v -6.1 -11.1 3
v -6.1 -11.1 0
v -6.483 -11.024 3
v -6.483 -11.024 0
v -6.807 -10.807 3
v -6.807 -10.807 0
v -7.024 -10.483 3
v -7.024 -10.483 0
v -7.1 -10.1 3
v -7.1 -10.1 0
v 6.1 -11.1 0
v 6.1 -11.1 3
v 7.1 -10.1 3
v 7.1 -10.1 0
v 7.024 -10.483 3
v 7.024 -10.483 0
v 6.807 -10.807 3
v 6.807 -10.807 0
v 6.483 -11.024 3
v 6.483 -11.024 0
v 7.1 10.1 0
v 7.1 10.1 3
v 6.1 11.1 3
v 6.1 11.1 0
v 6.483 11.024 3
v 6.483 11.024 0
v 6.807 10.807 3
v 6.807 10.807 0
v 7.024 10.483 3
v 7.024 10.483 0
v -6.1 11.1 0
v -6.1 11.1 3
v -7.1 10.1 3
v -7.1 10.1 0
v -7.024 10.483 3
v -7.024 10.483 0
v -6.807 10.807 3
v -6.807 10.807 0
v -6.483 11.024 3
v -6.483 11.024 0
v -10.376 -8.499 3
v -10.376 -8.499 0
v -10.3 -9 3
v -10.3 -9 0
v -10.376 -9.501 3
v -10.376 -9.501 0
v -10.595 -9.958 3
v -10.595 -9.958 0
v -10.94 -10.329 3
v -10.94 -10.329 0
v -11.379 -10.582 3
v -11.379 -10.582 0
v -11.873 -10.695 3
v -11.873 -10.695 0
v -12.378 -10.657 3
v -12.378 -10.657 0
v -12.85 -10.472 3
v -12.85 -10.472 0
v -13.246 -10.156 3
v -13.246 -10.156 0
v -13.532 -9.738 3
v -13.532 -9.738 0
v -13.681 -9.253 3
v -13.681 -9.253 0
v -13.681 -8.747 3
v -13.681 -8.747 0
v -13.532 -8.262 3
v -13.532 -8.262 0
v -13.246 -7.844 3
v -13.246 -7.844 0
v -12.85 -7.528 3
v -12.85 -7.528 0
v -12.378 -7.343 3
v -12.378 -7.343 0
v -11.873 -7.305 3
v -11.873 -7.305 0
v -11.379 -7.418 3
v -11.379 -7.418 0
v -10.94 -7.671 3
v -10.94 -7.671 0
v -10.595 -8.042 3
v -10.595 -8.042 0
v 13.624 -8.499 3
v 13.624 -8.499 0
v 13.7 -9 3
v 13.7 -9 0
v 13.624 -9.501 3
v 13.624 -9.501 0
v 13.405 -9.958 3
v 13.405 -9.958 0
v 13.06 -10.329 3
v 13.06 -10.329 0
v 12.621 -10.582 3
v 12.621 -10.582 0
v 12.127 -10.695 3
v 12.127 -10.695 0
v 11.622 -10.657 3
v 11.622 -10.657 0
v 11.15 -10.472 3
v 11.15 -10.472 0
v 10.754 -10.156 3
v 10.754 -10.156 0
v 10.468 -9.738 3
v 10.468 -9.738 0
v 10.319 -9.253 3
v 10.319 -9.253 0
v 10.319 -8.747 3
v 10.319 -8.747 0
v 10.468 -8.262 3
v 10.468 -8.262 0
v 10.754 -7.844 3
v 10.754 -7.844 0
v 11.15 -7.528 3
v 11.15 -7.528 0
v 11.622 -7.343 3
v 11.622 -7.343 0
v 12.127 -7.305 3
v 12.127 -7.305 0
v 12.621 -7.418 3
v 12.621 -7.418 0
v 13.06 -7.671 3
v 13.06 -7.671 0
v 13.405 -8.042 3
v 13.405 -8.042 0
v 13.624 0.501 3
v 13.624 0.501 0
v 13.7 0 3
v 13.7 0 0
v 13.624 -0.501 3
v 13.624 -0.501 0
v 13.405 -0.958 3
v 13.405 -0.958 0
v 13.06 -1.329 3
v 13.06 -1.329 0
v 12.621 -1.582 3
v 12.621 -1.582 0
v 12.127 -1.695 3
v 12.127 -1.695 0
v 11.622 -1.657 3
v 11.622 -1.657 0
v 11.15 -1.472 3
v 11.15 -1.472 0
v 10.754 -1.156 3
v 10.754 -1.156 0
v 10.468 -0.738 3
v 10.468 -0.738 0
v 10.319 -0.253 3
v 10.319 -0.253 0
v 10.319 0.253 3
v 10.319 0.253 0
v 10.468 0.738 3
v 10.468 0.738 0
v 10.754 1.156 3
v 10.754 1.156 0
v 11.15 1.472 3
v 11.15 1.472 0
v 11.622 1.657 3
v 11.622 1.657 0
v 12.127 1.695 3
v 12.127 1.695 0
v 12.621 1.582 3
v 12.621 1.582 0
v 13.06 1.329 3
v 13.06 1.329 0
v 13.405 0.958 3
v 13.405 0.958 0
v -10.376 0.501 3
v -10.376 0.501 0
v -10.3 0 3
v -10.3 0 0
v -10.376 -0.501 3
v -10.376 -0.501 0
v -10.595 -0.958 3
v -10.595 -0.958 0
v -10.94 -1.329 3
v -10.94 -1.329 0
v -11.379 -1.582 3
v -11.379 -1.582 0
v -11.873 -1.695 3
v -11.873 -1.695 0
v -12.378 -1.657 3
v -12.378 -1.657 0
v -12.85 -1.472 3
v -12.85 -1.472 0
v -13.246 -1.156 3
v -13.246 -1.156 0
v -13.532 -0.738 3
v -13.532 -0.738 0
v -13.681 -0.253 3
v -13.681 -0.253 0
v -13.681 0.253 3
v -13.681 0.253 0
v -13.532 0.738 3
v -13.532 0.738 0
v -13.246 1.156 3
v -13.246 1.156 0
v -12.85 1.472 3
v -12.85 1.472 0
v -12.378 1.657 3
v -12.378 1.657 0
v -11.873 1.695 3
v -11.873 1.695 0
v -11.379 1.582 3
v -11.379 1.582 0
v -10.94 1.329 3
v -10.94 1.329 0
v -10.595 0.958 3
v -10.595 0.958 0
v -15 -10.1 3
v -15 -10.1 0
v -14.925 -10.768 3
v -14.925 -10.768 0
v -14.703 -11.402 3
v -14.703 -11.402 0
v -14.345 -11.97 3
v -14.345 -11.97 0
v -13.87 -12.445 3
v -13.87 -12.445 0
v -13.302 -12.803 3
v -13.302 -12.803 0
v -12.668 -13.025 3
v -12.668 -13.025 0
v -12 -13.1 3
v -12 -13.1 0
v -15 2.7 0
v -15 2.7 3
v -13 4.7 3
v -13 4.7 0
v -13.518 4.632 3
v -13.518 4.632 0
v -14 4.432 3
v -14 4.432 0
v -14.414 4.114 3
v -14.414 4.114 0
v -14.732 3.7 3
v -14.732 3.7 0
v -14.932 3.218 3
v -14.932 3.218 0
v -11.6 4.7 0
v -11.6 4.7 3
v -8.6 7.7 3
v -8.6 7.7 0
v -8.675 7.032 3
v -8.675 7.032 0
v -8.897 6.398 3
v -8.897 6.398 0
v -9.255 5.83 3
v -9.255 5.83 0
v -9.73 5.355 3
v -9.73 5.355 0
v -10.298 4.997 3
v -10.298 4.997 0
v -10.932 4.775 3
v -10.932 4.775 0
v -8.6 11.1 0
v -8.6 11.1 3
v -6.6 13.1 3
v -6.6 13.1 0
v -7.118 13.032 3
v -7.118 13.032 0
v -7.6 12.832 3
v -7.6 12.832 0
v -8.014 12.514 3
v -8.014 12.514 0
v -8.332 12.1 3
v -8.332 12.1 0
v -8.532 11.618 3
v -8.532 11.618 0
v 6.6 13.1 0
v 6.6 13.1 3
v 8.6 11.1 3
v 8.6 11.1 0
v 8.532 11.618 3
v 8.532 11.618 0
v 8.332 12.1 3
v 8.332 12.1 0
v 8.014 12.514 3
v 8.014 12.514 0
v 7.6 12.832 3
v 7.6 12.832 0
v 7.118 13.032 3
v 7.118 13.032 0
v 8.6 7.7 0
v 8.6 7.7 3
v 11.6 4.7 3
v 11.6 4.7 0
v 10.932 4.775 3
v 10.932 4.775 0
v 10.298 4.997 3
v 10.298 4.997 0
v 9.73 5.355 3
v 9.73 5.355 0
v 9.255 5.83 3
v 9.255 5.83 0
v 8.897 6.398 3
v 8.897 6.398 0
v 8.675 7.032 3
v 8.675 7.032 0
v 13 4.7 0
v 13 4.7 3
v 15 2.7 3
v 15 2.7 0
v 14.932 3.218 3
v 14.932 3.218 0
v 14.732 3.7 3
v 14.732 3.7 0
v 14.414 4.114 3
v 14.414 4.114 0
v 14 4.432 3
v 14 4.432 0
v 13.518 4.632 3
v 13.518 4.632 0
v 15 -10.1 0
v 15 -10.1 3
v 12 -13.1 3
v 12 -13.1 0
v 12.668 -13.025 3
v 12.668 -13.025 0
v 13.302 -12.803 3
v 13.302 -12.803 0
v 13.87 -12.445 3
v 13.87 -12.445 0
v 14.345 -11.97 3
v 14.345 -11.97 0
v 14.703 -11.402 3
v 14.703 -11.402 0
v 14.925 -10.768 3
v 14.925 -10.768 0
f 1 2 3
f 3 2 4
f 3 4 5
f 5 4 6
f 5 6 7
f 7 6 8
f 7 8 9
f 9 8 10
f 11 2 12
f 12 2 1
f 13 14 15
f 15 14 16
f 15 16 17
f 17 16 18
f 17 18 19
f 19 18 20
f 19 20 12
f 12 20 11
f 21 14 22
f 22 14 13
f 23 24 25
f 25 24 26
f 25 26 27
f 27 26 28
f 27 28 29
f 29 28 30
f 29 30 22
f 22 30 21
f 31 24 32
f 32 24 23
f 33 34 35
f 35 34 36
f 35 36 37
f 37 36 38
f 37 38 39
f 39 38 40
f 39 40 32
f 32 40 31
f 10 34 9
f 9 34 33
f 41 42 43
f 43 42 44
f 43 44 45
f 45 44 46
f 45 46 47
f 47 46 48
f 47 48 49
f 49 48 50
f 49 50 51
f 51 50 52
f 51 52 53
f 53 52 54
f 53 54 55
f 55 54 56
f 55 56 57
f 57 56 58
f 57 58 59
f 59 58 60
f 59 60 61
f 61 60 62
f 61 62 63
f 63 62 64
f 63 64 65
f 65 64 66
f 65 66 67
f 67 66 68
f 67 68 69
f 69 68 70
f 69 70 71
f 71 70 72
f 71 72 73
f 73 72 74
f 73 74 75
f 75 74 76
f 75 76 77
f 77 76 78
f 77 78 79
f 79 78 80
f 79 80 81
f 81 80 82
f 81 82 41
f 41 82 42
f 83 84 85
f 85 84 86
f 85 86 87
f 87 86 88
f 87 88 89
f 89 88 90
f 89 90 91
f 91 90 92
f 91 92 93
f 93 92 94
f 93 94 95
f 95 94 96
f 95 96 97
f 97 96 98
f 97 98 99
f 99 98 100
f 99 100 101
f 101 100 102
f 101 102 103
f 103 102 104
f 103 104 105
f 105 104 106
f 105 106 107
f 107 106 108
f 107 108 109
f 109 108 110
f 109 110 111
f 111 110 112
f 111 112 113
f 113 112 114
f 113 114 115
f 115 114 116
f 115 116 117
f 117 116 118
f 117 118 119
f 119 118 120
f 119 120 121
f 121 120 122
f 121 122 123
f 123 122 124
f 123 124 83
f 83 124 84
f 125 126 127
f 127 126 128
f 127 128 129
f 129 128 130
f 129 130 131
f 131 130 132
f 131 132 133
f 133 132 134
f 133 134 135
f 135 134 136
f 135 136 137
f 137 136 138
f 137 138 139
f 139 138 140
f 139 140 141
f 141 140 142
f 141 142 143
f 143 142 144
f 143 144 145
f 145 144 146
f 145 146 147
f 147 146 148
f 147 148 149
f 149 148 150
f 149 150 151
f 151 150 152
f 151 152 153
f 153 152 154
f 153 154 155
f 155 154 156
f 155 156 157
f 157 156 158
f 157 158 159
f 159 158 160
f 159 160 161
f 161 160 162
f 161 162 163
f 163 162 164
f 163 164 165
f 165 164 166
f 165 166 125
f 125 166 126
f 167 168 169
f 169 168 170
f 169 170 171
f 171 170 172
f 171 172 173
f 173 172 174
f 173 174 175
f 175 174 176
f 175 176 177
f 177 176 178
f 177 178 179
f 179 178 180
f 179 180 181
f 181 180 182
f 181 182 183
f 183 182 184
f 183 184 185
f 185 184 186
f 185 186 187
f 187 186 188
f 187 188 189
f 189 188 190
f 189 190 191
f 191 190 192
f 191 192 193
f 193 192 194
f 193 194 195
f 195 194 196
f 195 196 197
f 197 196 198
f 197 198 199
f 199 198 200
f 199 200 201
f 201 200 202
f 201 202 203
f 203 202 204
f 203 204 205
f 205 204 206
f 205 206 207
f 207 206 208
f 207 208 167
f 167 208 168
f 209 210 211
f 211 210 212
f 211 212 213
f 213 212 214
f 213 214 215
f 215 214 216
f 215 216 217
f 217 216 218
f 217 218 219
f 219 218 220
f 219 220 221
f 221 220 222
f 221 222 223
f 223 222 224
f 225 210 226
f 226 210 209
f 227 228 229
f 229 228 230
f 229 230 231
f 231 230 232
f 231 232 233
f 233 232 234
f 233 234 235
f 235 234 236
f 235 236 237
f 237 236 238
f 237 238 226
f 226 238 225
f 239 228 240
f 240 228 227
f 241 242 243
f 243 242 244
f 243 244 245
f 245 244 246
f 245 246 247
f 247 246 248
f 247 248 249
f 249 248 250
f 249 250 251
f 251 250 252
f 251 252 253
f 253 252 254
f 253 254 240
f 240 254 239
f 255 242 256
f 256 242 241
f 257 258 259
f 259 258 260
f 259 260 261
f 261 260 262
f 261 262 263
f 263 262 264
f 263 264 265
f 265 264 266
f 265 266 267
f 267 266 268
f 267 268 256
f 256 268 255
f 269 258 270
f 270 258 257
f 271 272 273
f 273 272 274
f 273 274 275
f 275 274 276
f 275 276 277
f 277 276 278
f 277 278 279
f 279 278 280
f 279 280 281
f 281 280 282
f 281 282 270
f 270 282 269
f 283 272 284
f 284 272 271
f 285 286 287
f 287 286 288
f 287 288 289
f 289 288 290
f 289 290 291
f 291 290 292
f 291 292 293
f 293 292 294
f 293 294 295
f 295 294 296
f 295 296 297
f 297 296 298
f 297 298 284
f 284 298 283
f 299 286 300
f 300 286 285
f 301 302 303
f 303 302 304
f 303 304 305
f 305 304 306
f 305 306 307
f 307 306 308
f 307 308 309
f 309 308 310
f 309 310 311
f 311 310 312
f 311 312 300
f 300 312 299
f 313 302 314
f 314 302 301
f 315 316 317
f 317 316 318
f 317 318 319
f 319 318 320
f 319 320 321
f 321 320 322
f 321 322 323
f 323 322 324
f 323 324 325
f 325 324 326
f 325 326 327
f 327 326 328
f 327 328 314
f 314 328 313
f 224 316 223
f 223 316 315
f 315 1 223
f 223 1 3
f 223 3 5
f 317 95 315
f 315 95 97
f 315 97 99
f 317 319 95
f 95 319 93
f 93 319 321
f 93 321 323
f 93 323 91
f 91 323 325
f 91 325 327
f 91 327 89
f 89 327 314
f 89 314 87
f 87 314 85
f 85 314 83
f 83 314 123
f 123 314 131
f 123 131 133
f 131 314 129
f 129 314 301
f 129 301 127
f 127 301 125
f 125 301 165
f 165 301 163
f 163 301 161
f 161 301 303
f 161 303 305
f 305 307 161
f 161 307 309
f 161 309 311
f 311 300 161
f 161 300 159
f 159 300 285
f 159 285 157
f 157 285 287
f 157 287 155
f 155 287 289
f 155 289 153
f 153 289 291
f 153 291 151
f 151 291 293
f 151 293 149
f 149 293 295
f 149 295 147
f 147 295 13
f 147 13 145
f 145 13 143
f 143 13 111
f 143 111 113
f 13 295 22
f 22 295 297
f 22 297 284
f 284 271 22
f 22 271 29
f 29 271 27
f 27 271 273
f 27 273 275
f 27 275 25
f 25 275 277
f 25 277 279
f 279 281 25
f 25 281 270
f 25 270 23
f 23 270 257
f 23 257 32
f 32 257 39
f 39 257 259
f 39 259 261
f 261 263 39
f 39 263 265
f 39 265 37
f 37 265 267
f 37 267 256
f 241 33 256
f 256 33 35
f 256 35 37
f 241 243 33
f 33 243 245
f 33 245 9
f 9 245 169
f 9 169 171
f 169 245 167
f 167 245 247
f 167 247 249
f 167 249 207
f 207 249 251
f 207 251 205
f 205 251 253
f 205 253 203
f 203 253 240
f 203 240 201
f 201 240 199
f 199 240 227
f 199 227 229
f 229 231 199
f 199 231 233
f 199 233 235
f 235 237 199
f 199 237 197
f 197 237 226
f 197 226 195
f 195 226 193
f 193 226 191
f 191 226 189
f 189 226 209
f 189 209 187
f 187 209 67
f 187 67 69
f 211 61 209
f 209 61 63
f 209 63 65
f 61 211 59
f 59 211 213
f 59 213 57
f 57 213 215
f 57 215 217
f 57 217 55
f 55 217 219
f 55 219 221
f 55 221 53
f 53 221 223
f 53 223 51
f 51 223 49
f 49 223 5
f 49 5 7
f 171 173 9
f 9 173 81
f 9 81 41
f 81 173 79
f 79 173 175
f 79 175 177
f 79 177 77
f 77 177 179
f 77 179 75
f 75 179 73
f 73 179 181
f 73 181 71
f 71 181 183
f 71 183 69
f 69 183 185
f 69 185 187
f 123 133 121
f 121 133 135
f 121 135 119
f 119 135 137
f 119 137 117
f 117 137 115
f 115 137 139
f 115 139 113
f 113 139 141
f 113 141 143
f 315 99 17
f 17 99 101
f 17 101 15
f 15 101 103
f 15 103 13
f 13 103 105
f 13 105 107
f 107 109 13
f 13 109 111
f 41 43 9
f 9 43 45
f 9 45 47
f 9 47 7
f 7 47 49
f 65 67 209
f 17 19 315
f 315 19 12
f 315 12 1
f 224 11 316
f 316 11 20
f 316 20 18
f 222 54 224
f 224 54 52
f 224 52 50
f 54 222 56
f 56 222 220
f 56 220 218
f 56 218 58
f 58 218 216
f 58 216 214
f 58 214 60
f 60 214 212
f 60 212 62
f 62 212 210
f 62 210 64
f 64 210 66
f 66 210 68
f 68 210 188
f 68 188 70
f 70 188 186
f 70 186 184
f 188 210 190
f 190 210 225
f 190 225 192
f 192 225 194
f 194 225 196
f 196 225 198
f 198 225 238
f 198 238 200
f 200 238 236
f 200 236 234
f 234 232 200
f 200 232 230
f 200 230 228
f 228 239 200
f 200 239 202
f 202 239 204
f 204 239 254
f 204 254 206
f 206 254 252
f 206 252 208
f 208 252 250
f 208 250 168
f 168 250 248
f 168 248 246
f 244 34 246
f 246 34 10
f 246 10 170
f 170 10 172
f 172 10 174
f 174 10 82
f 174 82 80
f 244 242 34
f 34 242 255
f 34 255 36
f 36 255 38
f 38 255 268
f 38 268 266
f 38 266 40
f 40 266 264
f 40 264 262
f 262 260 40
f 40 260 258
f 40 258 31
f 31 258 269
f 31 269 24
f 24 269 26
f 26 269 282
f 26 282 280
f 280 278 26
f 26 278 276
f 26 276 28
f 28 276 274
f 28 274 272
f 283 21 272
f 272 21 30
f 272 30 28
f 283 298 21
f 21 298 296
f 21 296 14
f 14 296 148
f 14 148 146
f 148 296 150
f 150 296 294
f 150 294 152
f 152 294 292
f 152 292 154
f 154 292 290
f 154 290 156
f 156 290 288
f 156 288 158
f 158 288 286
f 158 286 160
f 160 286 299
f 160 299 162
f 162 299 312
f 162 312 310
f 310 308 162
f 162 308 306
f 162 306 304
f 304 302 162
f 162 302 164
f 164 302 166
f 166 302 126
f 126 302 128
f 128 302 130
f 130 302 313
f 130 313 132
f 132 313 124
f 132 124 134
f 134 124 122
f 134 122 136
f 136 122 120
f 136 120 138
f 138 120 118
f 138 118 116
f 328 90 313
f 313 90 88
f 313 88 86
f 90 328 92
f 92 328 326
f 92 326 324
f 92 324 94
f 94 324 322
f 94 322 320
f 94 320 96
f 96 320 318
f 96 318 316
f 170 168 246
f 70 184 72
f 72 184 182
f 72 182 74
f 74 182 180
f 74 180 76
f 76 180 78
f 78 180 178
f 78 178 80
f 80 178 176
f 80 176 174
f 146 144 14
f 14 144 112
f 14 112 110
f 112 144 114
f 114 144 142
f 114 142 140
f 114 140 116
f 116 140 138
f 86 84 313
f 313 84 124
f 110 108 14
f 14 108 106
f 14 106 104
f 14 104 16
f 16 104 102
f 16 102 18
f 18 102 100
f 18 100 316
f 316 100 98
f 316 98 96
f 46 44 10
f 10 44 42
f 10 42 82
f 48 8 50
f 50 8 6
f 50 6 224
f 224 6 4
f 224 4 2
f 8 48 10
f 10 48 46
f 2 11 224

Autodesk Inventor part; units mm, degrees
ref_plane "YZ Plane" through (0, 0, 0) normal (1, 0, 0) x (0, 1, 0)
ref_plane "XZ Plane" through (0, 0, 0) normal (0, 1, 0) x (-1, 0, 0)
ref_plane "XY Plane" through (0, 0, 0) normal (0, 0, 1) x (1, 0, 0)
sketch "Sketch1" plane through (0, 0, 0) normal (0, 0, 1) x (1, 0, 0)
  line L0 (-6.1, 11.1) -> (6.1, 11.1)
  line L1 (7.1, 10.1) -> (7.1, -10.1)
  line L2 (6.1, -11.1) -> (-6.1, -11.1)
  line L3 (-7.1, -10.1) -> (-7.1, 10.1)
  arc A0 (-7.1, -10.1) -> (-6.1, -11.1) centre (-6.1, -10.1) ccw
  arc A1 (6.1, -11.1) -> (7.1, -10.1) centre (6.1, -10.1) ccw
  arc A2 (7.1, 10.1) -> (6.1, 11.1) centre (6.1, 10.1) ccw
  arc A3 (-6.1, 11.1) -> (-7.1, 10.1) centre (-6.1, 10.1) ccw
  circle A4 centre (-12, 0) radius 1.7
  circle A5 centre (-12, -9) radius 1.7
  circle A6 centre (12, 0) radius 1.7
  circle A7 centre (12, -9) radius 1.7
  line L4 (-12, 13.1) -> (6.6, 13.1)
  line L5 (15, 2.7) -> (15, -10.1)
  line L6 (12, -13.1) -> (-12, -13.1)
  line L7 (-15, -10.1) -> (-15, 10.1)
  arc A8 (-12, 13.1) -> (-15, 10.1) centre (-12, 10.1) ccw
  arc A9 (15, 10.1) -> (12, 13.1) centre (12, 10.1) ccw
  arc A10 (12, -13.1) -> (15, -10.1) centre (12, -10.1) ccw
  arc A11 (-15, -10.1) -> (-12, -13.1) centre (-12, -10.1) ccw
  line L8 (8.6, 13.1) -> (15, 13.1)
  line L9 (15, 13.1) -> (15, 4.7)
  line L10 (13, 4.7) -> (11.6, 4.7)
  line L11 (8.6, 7.7) -> (8.6, 11.1)
  arc A12 (8.6, 7.7) -> (11.6, 4.7) centre (11.6, 7.7) ccw
  arc A13 (8.6, 11.1) -> (6.6, 13.1) centre (6.6, 11.1) ccw
  arc A14 (15, 2.7) -> (13, 4.7) centre (13, 2.7) ccw
  line L12 (0, 11.1) -> (0, -11.1) construction
  line L13 (-13, 4.7) -> (-11.6, 4.7)
  line L14 (-8.6, 7.7) -> (-8.6, 11.1)
  arc A15 (-11.6, 4.7) -> (-8.6, 7.7) centre (-11.6, 7.7) ccw
  arc A16 (-6.6, 13.1) -> (-8.6, 11.1) centre (-6.6, 11.1) ccw
  arc A17 (-13, 4.7) -> (-15, 2.7) centre (-13, 2.7) ccw
  point P0 (0, 0)
  point P1 (7.1, -11.1)
  point P2 (7.1, 11.1)
  point P3 (-7.1, -11.1)
  point P4 (-6.6, 13.1)
  dimension "d0" = 14.2
  dimension "d1" = 22.2
  dimension "d2" = 1
  dimension "d3" = 7.1
  dimension "d4" = 11.1
  dimension "d5" = 3.4
  dimension "d8" = 9
  dimension "d11" = 24
  dimension "d14" = 0
  dimension "d15" = 12
  dimension "d16" = 3
  dimension "d17" = 3
  dimension "d18" = 2
  dimension "d19" = 2
  dimension "d20" = 3
  dimension "d23" = 1.5
  dimension "d24" = 3
  dimension "d25" = 3
  dimension "d26" = 2
extrude "Extrusion1" add sketch "Sketch1" along normal blind 3 contours L4 A13 L11 A12 L10 A14 L5 A10 L6 A11 L7 A17 L13 A15 L14 A16
equation "\"d3\" = 0.5 * d0"
equation "\"d4\" = 0.5 * d1"
equation "\"d15\" = 0.5 * d11"
equation "\"d17\" = d16"
properties part number "skye_airspeed_inside_back"
